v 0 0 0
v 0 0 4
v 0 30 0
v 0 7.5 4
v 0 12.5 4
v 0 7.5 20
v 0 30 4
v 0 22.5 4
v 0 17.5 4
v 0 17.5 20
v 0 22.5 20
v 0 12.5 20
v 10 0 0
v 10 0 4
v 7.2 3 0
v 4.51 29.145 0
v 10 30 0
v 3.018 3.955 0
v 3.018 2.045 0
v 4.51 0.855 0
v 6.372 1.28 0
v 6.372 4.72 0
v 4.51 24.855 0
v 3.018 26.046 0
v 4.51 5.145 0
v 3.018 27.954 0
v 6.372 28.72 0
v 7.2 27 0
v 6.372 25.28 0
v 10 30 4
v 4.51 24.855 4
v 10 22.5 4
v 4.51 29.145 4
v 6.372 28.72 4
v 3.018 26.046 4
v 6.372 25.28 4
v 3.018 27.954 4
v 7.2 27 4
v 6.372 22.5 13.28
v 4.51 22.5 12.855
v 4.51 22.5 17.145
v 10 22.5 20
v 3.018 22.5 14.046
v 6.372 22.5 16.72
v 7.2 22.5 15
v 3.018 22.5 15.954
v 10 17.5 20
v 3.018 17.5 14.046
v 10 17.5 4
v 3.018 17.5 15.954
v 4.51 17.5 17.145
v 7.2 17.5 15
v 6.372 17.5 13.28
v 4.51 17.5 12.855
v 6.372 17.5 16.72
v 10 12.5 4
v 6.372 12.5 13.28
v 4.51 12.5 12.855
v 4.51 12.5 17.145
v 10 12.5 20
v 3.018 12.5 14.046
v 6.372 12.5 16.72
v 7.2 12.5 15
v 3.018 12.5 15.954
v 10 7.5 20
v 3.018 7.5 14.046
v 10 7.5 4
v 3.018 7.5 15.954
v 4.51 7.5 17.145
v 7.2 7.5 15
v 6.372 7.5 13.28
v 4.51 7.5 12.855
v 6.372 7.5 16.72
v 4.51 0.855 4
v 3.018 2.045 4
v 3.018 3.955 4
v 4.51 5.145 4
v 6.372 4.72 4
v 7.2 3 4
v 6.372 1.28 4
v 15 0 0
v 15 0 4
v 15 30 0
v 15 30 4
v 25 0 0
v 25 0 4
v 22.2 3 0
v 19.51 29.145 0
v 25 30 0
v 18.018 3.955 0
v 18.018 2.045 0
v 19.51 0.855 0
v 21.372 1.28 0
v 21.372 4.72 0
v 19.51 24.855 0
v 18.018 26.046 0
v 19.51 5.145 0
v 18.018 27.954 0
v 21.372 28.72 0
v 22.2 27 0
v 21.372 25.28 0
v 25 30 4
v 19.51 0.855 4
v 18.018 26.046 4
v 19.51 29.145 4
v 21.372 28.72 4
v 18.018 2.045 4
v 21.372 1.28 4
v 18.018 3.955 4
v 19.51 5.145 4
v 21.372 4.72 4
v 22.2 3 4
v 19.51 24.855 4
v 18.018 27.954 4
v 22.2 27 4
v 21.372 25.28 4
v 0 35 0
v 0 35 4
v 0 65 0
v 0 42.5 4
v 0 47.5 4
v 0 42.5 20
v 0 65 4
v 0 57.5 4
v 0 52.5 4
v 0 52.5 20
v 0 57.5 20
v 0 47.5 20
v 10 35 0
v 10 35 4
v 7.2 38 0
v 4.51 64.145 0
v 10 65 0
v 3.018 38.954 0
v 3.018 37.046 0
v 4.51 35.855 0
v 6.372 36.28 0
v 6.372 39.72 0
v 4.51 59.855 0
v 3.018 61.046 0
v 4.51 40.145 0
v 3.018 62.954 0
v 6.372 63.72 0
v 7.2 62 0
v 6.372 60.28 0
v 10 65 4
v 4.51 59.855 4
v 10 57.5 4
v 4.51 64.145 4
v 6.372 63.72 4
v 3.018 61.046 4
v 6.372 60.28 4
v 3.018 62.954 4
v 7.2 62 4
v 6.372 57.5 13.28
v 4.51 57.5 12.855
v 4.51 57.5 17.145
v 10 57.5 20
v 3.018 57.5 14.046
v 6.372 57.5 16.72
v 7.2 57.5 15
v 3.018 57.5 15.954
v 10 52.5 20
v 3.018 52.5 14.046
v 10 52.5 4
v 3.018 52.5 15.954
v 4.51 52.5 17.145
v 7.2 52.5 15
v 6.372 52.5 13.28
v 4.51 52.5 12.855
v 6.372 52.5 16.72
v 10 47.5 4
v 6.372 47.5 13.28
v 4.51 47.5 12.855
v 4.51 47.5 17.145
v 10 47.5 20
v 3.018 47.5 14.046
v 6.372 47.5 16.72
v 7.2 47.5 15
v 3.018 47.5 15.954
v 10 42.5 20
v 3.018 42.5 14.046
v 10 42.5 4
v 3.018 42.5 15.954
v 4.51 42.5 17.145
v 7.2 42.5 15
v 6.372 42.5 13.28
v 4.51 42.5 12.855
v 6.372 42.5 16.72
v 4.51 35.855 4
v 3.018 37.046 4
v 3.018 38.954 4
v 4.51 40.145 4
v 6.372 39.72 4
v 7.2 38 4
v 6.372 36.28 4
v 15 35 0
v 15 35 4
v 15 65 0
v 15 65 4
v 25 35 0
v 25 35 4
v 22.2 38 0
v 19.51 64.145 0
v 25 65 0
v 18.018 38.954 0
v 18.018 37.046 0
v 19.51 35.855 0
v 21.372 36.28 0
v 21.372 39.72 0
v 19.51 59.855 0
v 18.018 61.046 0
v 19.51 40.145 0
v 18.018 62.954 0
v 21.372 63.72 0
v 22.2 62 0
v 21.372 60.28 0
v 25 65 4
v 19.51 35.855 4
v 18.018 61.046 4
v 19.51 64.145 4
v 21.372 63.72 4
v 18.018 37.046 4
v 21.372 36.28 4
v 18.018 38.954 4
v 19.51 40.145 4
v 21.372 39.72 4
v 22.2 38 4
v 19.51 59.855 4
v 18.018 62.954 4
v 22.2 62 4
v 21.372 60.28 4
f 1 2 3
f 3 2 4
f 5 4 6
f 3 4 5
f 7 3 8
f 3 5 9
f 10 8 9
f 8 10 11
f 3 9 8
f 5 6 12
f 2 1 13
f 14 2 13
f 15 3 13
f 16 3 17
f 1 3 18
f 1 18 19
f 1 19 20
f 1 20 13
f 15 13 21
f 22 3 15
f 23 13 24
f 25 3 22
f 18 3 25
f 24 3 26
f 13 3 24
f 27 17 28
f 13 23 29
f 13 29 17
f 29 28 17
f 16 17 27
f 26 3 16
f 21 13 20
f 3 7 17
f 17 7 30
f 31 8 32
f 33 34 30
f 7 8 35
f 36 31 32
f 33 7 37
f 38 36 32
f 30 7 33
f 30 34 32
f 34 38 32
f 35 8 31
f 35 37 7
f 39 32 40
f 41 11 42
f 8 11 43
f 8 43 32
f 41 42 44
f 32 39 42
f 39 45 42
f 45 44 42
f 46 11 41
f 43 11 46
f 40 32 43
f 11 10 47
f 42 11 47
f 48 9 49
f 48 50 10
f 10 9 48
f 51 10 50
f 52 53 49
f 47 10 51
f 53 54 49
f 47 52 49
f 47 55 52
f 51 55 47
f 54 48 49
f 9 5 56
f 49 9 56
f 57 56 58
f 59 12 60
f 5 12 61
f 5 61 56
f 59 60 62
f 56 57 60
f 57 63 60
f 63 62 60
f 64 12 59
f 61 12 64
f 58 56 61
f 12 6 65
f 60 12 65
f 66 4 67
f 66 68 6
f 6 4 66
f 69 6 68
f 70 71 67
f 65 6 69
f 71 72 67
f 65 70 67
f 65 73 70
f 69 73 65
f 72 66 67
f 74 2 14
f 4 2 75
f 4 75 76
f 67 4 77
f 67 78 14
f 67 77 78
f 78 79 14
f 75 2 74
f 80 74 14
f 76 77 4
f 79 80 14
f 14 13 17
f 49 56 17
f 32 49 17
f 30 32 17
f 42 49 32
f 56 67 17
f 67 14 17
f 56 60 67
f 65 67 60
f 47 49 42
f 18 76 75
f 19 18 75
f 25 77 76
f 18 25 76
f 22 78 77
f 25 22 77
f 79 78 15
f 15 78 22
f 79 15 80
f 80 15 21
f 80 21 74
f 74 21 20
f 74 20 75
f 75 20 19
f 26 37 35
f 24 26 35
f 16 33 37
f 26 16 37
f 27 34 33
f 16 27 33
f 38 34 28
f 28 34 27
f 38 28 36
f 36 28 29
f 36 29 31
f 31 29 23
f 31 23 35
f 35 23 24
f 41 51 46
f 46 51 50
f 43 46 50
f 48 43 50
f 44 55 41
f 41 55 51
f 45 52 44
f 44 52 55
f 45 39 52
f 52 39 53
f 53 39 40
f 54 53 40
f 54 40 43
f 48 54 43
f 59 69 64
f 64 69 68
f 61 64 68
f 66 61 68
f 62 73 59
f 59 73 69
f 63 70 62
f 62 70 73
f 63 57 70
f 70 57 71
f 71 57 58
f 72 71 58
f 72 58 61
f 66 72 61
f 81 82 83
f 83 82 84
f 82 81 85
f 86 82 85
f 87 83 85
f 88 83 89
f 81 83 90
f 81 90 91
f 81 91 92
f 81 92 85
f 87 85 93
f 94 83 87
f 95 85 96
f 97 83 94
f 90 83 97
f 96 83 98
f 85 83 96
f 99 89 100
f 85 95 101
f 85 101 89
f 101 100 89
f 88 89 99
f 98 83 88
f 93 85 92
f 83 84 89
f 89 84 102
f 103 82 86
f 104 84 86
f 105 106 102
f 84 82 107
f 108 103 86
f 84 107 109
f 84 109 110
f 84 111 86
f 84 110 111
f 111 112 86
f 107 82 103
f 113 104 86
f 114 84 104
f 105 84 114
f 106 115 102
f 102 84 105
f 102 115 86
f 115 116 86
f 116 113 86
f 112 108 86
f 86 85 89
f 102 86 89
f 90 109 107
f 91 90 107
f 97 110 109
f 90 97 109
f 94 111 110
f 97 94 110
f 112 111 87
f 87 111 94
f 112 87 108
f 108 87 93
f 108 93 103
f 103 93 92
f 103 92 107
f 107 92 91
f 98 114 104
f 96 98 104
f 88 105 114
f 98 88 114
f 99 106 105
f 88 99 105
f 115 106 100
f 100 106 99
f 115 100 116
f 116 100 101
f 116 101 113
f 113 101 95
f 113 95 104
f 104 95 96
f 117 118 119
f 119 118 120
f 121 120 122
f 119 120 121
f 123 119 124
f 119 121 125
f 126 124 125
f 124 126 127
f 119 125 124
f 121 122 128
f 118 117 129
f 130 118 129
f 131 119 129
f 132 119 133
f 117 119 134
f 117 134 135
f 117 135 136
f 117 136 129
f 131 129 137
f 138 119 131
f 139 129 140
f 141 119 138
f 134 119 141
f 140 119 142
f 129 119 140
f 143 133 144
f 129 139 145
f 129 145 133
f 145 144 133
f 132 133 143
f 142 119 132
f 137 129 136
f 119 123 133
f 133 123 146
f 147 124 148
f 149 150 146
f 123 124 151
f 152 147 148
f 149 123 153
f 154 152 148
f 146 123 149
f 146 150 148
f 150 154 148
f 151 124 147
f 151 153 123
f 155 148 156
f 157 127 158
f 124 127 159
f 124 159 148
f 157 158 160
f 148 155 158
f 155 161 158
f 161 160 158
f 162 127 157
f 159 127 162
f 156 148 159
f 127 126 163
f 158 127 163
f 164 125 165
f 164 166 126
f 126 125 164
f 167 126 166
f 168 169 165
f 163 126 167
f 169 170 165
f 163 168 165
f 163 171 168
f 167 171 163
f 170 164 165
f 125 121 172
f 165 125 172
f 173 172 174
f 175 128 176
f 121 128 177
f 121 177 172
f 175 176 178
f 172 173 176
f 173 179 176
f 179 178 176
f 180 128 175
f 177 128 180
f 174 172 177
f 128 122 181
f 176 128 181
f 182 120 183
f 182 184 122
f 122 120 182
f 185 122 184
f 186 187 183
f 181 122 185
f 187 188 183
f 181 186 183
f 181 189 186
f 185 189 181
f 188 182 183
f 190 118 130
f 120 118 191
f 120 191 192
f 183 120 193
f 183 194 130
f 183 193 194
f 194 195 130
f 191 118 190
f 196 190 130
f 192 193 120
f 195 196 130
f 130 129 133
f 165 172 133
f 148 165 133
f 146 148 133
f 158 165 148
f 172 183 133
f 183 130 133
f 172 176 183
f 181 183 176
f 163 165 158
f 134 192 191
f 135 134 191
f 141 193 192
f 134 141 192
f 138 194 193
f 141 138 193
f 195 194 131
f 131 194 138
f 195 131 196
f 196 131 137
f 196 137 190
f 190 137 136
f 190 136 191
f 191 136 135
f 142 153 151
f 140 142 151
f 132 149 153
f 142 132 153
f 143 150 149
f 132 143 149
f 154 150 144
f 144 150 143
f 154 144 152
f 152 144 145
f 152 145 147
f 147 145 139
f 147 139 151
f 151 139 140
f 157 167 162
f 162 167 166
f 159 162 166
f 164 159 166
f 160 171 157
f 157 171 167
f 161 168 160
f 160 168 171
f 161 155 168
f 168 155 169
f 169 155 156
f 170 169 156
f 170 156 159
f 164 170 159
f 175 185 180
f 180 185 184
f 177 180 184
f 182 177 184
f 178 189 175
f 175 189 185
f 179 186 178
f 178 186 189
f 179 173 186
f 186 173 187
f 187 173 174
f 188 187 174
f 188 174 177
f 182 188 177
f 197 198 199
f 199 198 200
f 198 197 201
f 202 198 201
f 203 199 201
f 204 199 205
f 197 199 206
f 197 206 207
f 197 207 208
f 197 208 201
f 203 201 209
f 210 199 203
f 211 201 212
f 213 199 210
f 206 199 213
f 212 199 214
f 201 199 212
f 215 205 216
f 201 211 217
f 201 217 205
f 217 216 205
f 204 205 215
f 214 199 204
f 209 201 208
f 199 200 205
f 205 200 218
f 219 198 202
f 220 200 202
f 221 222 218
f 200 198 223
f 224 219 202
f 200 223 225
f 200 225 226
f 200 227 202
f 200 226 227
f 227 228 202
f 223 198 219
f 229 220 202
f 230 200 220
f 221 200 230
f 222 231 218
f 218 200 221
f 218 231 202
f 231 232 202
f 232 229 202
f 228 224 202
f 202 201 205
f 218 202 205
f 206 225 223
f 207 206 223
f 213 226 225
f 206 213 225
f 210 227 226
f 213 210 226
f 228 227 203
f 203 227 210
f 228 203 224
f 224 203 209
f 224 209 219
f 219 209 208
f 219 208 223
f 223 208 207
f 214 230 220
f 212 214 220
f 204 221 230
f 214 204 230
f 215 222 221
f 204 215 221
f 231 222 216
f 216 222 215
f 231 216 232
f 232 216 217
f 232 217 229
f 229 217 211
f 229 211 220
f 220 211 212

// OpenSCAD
difference(){
  cube([10,24+3+3,4]);
  union(){
    translate([5,3,0]) cylinder(r=2.2,h=100);
    translate([5,24+3,0]) cylinder(r=2.2,h=100);
  }
}

difference(){
  union(){
    translate([0,7.5,0])cube([10,5,20]);
    translate([0,30-7.5-5,0])cube([10,5,20]);
  }
  translate([5,50,15])  rotate([90,0,0]) cylinder(r=2.2,h=100);
}

translate([15,0,0]){
difference(){
  cube([10,24+3+3,4]);
  union(){
    translate([5,3,0]) cylinder(r=2.2,h=100);
    translate([5,24+3,0]) cylinder(r=2.2,h=100);
  }
}
}

translate([0,35,0]){
difference(){
  cube([10,24+3+3,4]);
  union(){
    translate([5,3,0]) cylinder(r=2.2,h=100);
    translate([5,24+3,0]) cylinder(r=2.2,h=100);
  }
}

difference(){
  union(){
    translate([0,7.5,0])cube([10,5,20]);
    translate([0,30-7.5-5,0])cube([10,5,20]);
  }
  translate([5,50,15])  rotate([90,0,0]) cylinder(r=2.2,h=100);
}

translate([15,0,0]){
difference(){
  cube([10,24+3+3,4]);
  union(){
    translate([5,3,0]) cylinder(r=2.2,h=100);
    translate([5,24+3,0]) cylinder(r=2.2,h=100);
  }
}
}
}
